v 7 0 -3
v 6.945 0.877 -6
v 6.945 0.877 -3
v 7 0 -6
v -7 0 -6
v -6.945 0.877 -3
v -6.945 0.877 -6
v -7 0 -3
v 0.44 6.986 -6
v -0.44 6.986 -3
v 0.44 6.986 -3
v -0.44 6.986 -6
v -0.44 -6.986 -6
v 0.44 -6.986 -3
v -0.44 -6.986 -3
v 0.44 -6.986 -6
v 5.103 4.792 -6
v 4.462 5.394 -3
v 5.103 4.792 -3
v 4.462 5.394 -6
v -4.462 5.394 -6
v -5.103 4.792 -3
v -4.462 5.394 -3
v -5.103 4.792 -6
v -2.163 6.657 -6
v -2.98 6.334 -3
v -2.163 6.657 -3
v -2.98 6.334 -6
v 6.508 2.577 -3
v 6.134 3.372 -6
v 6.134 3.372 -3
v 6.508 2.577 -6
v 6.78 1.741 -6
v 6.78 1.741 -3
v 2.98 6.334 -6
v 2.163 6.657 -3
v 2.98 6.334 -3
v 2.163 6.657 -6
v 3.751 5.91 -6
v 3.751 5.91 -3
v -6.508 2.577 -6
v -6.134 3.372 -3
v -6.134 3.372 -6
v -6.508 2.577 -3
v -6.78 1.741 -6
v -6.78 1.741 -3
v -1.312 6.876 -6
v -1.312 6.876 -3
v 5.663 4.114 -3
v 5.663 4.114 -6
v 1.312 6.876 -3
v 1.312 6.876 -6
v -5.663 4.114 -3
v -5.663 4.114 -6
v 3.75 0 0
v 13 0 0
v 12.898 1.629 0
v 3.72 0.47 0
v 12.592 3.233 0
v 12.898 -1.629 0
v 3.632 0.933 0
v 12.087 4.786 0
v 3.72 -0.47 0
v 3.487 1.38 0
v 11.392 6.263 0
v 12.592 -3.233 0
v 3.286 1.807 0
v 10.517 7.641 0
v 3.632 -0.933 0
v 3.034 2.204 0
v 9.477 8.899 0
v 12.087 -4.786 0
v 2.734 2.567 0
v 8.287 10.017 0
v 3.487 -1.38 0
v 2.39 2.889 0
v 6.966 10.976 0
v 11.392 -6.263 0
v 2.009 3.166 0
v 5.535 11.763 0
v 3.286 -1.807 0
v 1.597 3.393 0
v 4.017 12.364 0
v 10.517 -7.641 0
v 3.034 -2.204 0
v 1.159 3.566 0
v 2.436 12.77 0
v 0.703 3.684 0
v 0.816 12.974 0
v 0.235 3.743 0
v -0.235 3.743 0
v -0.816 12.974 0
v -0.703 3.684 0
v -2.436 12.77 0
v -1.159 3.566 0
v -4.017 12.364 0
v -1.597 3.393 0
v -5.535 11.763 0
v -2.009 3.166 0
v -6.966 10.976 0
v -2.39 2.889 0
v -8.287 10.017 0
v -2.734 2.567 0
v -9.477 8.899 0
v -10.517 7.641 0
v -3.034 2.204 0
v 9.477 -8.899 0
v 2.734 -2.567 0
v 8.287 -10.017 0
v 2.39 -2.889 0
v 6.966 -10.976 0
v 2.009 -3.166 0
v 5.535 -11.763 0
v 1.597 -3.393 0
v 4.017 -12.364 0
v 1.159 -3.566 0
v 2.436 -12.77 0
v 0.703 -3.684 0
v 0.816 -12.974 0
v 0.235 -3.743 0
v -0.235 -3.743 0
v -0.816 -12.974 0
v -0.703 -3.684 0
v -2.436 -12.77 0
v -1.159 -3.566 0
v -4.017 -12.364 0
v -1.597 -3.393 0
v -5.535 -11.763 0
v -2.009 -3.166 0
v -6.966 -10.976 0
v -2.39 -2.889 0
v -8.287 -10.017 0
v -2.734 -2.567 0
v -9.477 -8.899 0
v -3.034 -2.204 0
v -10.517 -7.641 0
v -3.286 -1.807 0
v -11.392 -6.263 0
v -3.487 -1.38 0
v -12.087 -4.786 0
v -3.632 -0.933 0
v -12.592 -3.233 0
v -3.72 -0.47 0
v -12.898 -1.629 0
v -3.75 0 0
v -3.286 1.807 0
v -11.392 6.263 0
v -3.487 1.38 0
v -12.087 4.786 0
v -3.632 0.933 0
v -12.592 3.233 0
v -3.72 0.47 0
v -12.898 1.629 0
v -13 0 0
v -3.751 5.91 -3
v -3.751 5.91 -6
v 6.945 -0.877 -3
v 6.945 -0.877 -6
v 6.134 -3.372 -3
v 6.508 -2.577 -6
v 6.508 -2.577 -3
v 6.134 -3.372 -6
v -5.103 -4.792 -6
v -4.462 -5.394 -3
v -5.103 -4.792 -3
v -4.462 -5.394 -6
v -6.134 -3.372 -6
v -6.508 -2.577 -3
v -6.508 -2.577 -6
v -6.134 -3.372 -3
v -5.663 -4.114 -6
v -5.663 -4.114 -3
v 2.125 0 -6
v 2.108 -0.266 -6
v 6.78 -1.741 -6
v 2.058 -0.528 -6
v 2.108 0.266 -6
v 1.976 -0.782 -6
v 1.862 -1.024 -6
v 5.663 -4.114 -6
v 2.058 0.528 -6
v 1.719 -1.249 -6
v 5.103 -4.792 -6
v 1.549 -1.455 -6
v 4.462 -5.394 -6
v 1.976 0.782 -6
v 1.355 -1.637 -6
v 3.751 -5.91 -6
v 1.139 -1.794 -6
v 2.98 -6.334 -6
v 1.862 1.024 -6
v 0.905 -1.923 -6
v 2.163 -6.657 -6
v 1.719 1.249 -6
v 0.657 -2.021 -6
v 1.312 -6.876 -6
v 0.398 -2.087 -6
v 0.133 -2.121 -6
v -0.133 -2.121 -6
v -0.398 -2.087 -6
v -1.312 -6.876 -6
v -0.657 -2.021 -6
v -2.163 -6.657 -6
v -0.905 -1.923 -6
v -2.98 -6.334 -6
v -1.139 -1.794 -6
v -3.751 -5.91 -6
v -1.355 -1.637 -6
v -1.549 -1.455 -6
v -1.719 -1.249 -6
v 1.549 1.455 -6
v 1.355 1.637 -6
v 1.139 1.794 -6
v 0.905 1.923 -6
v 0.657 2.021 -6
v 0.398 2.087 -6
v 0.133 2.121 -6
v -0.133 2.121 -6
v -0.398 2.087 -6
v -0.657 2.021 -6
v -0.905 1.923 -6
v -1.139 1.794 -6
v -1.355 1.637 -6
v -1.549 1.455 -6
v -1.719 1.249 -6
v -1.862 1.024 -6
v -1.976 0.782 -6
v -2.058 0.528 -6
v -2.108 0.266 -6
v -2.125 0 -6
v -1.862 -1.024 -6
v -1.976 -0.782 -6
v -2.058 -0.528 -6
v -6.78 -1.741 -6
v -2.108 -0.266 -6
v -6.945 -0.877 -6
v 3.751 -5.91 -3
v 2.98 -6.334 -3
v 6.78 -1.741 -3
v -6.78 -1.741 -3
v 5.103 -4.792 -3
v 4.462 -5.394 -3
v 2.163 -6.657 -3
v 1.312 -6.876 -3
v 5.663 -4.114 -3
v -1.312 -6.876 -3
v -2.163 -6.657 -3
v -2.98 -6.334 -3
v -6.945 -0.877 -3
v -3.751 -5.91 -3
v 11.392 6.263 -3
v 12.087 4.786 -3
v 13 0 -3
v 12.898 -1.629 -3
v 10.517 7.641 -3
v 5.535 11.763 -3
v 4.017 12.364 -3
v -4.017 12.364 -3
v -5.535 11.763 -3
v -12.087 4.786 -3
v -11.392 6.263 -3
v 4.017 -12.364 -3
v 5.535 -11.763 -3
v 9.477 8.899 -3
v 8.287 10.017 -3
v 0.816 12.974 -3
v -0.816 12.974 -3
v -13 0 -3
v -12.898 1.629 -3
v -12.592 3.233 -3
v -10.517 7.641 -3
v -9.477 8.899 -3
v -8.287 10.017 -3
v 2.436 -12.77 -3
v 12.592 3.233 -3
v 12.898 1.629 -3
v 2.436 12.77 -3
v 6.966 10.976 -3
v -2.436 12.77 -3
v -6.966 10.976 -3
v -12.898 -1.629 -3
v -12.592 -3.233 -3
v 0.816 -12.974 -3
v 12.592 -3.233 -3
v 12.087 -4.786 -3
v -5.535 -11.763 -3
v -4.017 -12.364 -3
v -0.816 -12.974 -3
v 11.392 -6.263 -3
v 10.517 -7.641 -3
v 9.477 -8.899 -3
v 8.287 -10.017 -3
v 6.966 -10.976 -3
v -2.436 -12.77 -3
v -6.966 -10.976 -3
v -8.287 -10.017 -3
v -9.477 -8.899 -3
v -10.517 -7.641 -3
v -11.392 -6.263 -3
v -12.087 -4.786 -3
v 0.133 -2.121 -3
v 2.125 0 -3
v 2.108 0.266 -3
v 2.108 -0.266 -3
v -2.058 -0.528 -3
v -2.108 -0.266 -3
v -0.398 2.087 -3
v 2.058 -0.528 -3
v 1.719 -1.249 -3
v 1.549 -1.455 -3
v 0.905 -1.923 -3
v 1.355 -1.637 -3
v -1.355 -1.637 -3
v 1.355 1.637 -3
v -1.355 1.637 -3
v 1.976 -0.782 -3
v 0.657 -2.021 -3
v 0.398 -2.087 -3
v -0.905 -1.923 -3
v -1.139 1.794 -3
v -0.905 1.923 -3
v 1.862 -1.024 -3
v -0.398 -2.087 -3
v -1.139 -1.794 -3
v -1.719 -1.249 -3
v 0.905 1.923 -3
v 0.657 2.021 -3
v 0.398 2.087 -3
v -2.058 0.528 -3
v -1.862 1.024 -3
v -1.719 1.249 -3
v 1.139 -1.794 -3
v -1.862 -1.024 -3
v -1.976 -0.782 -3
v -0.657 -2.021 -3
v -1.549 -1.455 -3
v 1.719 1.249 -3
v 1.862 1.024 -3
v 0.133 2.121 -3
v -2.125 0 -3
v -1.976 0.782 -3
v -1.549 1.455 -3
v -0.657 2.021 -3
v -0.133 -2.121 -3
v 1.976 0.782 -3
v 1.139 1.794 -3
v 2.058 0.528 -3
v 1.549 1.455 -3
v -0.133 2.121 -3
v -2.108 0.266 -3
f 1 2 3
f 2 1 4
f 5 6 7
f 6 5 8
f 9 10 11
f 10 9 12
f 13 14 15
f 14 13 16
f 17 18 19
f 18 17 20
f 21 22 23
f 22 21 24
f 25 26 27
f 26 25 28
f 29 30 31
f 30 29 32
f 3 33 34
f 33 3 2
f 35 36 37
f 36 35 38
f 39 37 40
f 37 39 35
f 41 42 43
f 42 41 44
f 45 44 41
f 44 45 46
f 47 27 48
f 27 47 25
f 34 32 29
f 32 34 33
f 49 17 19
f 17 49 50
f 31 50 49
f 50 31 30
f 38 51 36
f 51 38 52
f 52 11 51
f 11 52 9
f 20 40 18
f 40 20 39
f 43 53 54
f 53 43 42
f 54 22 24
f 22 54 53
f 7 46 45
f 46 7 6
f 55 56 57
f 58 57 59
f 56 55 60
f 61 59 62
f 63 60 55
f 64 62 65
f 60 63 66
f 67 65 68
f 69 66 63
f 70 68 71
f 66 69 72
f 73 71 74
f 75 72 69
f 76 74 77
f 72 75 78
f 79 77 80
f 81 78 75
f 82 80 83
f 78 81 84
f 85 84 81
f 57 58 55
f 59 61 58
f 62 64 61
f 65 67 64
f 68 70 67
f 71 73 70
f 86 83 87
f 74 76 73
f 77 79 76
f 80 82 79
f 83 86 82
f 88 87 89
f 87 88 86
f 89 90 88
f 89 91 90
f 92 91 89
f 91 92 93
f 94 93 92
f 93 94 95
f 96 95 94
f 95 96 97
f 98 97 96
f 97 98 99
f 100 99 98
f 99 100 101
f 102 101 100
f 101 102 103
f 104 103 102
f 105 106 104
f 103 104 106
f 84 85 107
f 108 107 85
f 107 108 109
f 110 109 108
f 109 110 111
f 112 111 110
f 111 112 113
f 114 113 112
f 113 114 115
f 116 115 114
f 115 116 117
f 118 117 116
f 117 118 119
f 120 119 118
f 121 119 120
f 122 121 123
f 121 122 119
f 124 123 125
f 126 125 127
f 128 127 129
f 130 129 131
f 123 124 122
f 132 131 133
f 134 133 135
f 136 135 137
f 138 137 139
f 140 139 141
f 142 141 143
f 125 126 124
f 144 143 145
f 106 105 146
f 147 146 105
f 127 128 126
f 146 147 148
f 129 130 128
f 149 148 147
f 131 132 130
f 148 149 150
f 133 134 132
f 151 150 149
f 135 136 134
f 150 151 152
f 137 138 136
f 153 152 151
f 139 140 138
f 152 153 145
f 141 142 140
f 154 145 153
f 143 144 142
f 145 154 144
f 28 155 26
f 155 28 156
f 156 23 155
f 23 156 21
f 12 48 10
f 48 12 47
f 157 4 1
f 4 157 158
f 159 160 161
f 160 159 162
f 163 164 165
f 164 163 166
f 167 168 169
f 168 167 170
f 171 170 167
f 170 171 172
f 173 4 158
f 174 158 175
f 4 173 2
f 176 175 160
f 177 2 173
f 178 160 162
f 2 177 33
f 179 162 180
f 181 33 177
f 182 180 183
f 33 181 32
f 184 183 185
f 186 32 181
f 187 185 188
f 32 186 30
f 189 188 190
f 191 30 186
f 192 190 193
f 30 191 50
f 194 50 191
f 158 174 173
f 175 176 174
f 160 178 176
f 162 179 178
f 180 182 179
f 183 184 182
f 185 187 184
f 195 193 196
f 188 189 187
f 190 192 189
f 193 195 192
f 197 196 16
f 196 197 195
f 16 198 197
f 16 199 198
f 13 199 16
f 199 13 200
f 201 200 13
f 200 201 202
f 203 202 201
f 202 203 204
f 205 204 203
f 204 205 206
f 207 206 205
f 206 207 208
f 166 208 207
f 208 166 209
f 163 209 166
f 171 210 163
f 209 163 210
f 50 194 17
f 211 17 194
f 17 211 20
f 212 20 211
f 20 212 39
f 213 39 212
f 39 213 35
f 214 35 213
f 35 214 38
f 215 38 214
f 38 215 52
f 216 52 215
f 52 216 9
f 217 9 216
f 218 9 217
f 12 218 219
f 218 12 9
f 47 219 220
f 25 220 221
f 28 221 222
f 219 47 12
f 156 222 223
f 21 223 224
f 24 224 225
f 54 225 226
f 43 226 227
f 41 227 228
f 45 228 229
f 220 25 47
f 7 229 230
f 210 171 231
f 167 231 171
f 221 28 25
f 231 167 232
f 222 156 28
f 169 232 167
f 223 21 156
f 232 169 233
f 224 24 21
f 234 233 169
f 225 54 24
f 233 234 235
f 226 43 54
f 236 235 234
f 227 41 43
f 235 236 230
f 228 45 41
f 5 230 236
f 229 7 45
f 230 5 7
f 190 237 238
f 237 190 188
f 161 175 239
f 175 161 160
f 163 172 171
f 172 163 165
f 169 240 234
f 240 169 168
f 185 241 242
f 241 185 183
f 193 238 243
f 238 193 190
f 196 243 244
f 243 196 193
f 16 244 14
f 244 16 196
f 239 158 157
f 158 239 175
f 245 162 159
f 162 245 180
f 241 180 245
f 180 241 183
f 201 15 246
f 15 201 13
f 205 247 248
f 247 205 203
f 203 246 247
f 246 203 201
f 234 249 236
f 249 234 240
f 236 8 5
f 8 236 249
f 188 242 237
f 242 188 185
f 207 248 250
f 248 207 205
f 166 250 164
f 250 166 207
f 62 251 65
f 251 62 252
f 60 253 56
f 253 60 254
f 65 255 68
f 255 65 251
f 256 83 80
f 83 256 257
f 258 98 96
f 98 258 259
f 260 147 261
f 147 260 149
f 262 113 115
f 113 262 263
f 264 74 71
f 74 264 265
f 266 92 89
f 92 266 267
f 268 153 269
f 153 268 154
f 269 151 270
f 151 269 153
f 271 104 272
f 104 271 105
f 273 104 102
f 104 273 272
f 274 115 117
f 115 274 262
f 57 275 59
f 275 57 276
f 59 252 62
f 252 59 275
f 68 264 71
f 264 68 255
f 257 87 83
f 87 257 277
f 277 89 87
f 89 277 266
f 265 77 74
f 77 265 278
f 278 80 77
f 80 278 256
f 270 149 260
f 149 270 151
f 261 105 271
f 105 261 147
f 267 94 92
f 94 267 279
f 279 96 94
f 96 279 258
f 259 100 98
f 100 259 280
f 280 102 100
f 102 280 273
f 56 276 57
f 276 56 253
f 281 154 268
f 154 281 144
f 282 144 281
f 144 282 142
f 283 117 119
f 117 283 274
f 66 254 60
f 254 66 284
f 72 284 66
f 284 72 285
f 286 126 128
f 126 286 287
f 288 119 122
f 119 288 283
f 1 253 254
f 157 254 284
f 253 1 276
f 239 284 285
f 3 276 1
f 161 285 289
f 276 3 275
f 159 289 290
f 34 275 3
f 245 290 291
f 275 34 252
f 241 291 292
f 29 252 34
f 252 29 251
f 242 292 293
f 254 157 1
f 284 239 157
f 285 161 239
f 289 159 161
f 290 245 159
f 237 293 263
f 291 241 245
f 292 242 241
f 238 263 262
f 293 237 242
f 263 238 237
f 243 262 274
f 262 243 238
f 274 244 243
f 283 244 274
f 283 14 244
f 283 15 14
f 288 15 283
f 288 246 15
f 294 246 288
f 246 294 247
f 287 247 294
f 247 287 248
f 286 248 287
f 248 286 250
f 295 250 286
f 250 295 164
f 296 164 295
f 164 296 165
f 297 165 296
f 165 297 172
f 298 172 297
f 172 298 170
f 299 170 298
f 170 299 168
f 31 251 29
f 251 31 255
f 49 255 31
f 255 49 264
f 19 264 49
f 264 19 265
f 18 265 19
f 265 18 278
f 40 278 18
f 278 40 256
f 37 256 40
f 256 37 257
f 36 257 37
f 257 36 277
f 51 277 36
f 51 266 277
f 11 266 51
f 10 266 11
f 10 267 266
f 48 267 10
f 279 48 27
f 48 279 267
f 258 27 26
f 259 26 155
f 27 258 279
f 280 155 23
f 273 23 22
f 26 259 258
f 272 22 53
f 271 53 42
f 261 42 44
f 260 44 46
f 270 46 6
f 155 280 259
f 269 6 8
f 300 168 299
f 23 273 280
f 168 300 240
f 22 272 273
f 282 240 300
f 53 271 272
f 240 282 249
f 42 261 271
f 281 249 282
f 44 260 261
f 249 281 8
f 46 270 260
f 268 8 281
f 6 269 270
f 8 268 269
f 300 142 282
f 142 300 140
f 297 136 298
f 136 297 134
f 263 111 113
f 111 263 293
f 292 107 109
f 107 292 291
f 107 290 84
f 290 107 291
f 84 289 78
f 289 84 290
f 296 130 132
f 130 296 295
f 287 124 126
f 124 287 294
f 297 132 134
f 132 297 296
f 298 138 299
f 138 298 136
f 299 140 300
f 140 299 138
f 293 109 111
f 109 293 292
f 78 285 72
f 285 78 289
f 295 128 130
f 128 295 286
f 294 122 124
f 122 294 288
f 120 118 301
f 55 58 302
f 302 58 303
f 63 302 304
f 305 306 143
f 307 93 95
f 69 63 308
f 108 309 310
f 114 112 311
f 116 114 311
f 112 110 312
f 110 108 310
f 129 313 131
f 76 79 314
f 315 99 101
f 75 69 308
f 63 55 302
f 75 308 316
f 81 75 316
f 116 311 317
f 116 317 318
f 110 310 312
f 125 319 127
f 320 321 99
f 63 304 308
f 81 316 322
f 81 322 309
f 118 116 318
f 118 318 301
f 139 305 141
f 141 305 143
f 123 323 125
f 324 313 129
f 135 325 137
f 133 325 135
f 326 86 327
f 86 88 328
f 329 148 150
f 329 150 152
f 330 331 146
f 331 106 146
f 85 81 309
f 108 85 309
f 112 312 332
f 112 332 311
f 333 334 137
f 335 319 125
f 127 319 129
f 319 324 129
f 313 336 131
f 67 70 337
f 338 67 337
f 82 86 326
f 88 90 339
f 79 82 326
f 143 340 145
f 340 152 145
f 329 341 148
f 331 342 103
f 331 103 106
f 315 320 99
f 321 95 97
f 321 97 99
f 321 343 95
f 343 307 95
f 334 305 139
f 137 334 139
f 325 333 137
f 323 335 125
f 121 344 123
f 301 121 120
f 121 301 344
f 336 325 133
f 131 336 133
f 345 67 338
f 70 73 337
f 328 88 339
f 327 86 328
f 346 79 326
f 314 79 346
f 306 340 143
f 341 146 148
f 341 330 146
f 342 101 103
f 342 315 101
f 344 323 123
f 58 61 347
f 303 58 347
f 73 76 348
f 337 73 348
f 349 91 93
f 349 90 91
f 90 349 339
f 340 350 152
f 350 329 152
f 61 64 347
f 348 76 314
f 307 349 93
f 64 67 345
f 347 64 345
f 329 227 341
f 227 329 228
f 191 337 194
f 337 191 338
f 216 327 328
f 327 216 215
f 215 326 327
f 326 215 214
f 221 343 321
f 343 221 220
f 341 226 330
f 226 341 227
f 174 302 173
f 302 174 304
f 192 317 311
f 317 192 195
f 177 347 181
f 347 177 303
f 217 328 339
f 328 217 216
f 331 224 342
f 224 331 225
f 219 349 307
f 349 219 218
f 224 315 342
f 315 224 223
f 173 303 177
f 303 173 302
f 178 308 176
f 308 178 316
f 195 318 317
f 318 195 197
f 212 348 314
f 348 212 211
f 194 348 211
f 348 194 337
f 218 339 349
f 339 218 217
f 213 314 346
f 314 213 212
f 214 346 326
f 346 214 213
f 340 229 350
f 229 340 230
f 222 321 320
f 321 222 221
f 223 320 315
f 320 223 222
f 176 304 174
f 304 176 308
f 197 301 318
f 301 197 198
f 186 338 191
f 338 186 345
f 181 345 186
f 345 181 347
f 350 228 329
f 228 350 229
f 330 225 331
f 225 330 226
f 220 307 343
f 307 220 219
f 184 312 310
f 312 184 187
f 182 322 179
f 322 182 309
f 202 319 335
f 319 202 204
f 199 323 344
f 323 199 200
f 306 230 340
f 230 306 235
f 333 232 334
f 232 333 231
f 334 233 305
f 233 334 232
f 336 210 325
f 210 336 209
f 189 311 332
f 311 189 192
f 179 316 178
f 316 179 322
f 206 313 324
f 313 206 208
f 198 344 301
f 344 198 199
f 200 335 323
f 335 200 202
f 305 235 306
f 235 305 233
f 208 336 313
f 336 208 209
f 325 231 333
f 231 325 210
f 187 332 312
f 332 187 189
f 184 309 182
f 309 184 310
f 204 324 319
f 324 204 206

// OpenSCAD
$fn = 50;


difference() {
	union() {
		translate(v = [0, 0, -6.0000000000]) {
			cylinder(h = 6, r = 7.0000000000);
		}
		translate(v = [0, 0, -3.0000000000]) {
			cylinder(h = 3, r = 13.0000000000);
		}
	}
	union() {
		translate(v = [0, 0, 0]) {
			rotate(a = [0, 0, 0]) {
				difference() {
					union() {
						#translate(v = [0, 0, -6.0000000000]) {
							cylinder(h = 6, r = 2.0000000000);
						}
						#translate(v = [0, 0, -3]) {
							cylinder(h = 3, r1 = 2.1250000000, r2 = 3.7500000000);
						}
						#translate(v = [0, 0, -6.0000000000]) {
							cylinder(h = 6, r = 2.1250000000);
						}
						#translate(v = [0, 0, -6.0000000000]) {
							cylinder(h = 6, r = 2.0000000000);
						}
					}
					union();
				}
			}
		}
	}
}
